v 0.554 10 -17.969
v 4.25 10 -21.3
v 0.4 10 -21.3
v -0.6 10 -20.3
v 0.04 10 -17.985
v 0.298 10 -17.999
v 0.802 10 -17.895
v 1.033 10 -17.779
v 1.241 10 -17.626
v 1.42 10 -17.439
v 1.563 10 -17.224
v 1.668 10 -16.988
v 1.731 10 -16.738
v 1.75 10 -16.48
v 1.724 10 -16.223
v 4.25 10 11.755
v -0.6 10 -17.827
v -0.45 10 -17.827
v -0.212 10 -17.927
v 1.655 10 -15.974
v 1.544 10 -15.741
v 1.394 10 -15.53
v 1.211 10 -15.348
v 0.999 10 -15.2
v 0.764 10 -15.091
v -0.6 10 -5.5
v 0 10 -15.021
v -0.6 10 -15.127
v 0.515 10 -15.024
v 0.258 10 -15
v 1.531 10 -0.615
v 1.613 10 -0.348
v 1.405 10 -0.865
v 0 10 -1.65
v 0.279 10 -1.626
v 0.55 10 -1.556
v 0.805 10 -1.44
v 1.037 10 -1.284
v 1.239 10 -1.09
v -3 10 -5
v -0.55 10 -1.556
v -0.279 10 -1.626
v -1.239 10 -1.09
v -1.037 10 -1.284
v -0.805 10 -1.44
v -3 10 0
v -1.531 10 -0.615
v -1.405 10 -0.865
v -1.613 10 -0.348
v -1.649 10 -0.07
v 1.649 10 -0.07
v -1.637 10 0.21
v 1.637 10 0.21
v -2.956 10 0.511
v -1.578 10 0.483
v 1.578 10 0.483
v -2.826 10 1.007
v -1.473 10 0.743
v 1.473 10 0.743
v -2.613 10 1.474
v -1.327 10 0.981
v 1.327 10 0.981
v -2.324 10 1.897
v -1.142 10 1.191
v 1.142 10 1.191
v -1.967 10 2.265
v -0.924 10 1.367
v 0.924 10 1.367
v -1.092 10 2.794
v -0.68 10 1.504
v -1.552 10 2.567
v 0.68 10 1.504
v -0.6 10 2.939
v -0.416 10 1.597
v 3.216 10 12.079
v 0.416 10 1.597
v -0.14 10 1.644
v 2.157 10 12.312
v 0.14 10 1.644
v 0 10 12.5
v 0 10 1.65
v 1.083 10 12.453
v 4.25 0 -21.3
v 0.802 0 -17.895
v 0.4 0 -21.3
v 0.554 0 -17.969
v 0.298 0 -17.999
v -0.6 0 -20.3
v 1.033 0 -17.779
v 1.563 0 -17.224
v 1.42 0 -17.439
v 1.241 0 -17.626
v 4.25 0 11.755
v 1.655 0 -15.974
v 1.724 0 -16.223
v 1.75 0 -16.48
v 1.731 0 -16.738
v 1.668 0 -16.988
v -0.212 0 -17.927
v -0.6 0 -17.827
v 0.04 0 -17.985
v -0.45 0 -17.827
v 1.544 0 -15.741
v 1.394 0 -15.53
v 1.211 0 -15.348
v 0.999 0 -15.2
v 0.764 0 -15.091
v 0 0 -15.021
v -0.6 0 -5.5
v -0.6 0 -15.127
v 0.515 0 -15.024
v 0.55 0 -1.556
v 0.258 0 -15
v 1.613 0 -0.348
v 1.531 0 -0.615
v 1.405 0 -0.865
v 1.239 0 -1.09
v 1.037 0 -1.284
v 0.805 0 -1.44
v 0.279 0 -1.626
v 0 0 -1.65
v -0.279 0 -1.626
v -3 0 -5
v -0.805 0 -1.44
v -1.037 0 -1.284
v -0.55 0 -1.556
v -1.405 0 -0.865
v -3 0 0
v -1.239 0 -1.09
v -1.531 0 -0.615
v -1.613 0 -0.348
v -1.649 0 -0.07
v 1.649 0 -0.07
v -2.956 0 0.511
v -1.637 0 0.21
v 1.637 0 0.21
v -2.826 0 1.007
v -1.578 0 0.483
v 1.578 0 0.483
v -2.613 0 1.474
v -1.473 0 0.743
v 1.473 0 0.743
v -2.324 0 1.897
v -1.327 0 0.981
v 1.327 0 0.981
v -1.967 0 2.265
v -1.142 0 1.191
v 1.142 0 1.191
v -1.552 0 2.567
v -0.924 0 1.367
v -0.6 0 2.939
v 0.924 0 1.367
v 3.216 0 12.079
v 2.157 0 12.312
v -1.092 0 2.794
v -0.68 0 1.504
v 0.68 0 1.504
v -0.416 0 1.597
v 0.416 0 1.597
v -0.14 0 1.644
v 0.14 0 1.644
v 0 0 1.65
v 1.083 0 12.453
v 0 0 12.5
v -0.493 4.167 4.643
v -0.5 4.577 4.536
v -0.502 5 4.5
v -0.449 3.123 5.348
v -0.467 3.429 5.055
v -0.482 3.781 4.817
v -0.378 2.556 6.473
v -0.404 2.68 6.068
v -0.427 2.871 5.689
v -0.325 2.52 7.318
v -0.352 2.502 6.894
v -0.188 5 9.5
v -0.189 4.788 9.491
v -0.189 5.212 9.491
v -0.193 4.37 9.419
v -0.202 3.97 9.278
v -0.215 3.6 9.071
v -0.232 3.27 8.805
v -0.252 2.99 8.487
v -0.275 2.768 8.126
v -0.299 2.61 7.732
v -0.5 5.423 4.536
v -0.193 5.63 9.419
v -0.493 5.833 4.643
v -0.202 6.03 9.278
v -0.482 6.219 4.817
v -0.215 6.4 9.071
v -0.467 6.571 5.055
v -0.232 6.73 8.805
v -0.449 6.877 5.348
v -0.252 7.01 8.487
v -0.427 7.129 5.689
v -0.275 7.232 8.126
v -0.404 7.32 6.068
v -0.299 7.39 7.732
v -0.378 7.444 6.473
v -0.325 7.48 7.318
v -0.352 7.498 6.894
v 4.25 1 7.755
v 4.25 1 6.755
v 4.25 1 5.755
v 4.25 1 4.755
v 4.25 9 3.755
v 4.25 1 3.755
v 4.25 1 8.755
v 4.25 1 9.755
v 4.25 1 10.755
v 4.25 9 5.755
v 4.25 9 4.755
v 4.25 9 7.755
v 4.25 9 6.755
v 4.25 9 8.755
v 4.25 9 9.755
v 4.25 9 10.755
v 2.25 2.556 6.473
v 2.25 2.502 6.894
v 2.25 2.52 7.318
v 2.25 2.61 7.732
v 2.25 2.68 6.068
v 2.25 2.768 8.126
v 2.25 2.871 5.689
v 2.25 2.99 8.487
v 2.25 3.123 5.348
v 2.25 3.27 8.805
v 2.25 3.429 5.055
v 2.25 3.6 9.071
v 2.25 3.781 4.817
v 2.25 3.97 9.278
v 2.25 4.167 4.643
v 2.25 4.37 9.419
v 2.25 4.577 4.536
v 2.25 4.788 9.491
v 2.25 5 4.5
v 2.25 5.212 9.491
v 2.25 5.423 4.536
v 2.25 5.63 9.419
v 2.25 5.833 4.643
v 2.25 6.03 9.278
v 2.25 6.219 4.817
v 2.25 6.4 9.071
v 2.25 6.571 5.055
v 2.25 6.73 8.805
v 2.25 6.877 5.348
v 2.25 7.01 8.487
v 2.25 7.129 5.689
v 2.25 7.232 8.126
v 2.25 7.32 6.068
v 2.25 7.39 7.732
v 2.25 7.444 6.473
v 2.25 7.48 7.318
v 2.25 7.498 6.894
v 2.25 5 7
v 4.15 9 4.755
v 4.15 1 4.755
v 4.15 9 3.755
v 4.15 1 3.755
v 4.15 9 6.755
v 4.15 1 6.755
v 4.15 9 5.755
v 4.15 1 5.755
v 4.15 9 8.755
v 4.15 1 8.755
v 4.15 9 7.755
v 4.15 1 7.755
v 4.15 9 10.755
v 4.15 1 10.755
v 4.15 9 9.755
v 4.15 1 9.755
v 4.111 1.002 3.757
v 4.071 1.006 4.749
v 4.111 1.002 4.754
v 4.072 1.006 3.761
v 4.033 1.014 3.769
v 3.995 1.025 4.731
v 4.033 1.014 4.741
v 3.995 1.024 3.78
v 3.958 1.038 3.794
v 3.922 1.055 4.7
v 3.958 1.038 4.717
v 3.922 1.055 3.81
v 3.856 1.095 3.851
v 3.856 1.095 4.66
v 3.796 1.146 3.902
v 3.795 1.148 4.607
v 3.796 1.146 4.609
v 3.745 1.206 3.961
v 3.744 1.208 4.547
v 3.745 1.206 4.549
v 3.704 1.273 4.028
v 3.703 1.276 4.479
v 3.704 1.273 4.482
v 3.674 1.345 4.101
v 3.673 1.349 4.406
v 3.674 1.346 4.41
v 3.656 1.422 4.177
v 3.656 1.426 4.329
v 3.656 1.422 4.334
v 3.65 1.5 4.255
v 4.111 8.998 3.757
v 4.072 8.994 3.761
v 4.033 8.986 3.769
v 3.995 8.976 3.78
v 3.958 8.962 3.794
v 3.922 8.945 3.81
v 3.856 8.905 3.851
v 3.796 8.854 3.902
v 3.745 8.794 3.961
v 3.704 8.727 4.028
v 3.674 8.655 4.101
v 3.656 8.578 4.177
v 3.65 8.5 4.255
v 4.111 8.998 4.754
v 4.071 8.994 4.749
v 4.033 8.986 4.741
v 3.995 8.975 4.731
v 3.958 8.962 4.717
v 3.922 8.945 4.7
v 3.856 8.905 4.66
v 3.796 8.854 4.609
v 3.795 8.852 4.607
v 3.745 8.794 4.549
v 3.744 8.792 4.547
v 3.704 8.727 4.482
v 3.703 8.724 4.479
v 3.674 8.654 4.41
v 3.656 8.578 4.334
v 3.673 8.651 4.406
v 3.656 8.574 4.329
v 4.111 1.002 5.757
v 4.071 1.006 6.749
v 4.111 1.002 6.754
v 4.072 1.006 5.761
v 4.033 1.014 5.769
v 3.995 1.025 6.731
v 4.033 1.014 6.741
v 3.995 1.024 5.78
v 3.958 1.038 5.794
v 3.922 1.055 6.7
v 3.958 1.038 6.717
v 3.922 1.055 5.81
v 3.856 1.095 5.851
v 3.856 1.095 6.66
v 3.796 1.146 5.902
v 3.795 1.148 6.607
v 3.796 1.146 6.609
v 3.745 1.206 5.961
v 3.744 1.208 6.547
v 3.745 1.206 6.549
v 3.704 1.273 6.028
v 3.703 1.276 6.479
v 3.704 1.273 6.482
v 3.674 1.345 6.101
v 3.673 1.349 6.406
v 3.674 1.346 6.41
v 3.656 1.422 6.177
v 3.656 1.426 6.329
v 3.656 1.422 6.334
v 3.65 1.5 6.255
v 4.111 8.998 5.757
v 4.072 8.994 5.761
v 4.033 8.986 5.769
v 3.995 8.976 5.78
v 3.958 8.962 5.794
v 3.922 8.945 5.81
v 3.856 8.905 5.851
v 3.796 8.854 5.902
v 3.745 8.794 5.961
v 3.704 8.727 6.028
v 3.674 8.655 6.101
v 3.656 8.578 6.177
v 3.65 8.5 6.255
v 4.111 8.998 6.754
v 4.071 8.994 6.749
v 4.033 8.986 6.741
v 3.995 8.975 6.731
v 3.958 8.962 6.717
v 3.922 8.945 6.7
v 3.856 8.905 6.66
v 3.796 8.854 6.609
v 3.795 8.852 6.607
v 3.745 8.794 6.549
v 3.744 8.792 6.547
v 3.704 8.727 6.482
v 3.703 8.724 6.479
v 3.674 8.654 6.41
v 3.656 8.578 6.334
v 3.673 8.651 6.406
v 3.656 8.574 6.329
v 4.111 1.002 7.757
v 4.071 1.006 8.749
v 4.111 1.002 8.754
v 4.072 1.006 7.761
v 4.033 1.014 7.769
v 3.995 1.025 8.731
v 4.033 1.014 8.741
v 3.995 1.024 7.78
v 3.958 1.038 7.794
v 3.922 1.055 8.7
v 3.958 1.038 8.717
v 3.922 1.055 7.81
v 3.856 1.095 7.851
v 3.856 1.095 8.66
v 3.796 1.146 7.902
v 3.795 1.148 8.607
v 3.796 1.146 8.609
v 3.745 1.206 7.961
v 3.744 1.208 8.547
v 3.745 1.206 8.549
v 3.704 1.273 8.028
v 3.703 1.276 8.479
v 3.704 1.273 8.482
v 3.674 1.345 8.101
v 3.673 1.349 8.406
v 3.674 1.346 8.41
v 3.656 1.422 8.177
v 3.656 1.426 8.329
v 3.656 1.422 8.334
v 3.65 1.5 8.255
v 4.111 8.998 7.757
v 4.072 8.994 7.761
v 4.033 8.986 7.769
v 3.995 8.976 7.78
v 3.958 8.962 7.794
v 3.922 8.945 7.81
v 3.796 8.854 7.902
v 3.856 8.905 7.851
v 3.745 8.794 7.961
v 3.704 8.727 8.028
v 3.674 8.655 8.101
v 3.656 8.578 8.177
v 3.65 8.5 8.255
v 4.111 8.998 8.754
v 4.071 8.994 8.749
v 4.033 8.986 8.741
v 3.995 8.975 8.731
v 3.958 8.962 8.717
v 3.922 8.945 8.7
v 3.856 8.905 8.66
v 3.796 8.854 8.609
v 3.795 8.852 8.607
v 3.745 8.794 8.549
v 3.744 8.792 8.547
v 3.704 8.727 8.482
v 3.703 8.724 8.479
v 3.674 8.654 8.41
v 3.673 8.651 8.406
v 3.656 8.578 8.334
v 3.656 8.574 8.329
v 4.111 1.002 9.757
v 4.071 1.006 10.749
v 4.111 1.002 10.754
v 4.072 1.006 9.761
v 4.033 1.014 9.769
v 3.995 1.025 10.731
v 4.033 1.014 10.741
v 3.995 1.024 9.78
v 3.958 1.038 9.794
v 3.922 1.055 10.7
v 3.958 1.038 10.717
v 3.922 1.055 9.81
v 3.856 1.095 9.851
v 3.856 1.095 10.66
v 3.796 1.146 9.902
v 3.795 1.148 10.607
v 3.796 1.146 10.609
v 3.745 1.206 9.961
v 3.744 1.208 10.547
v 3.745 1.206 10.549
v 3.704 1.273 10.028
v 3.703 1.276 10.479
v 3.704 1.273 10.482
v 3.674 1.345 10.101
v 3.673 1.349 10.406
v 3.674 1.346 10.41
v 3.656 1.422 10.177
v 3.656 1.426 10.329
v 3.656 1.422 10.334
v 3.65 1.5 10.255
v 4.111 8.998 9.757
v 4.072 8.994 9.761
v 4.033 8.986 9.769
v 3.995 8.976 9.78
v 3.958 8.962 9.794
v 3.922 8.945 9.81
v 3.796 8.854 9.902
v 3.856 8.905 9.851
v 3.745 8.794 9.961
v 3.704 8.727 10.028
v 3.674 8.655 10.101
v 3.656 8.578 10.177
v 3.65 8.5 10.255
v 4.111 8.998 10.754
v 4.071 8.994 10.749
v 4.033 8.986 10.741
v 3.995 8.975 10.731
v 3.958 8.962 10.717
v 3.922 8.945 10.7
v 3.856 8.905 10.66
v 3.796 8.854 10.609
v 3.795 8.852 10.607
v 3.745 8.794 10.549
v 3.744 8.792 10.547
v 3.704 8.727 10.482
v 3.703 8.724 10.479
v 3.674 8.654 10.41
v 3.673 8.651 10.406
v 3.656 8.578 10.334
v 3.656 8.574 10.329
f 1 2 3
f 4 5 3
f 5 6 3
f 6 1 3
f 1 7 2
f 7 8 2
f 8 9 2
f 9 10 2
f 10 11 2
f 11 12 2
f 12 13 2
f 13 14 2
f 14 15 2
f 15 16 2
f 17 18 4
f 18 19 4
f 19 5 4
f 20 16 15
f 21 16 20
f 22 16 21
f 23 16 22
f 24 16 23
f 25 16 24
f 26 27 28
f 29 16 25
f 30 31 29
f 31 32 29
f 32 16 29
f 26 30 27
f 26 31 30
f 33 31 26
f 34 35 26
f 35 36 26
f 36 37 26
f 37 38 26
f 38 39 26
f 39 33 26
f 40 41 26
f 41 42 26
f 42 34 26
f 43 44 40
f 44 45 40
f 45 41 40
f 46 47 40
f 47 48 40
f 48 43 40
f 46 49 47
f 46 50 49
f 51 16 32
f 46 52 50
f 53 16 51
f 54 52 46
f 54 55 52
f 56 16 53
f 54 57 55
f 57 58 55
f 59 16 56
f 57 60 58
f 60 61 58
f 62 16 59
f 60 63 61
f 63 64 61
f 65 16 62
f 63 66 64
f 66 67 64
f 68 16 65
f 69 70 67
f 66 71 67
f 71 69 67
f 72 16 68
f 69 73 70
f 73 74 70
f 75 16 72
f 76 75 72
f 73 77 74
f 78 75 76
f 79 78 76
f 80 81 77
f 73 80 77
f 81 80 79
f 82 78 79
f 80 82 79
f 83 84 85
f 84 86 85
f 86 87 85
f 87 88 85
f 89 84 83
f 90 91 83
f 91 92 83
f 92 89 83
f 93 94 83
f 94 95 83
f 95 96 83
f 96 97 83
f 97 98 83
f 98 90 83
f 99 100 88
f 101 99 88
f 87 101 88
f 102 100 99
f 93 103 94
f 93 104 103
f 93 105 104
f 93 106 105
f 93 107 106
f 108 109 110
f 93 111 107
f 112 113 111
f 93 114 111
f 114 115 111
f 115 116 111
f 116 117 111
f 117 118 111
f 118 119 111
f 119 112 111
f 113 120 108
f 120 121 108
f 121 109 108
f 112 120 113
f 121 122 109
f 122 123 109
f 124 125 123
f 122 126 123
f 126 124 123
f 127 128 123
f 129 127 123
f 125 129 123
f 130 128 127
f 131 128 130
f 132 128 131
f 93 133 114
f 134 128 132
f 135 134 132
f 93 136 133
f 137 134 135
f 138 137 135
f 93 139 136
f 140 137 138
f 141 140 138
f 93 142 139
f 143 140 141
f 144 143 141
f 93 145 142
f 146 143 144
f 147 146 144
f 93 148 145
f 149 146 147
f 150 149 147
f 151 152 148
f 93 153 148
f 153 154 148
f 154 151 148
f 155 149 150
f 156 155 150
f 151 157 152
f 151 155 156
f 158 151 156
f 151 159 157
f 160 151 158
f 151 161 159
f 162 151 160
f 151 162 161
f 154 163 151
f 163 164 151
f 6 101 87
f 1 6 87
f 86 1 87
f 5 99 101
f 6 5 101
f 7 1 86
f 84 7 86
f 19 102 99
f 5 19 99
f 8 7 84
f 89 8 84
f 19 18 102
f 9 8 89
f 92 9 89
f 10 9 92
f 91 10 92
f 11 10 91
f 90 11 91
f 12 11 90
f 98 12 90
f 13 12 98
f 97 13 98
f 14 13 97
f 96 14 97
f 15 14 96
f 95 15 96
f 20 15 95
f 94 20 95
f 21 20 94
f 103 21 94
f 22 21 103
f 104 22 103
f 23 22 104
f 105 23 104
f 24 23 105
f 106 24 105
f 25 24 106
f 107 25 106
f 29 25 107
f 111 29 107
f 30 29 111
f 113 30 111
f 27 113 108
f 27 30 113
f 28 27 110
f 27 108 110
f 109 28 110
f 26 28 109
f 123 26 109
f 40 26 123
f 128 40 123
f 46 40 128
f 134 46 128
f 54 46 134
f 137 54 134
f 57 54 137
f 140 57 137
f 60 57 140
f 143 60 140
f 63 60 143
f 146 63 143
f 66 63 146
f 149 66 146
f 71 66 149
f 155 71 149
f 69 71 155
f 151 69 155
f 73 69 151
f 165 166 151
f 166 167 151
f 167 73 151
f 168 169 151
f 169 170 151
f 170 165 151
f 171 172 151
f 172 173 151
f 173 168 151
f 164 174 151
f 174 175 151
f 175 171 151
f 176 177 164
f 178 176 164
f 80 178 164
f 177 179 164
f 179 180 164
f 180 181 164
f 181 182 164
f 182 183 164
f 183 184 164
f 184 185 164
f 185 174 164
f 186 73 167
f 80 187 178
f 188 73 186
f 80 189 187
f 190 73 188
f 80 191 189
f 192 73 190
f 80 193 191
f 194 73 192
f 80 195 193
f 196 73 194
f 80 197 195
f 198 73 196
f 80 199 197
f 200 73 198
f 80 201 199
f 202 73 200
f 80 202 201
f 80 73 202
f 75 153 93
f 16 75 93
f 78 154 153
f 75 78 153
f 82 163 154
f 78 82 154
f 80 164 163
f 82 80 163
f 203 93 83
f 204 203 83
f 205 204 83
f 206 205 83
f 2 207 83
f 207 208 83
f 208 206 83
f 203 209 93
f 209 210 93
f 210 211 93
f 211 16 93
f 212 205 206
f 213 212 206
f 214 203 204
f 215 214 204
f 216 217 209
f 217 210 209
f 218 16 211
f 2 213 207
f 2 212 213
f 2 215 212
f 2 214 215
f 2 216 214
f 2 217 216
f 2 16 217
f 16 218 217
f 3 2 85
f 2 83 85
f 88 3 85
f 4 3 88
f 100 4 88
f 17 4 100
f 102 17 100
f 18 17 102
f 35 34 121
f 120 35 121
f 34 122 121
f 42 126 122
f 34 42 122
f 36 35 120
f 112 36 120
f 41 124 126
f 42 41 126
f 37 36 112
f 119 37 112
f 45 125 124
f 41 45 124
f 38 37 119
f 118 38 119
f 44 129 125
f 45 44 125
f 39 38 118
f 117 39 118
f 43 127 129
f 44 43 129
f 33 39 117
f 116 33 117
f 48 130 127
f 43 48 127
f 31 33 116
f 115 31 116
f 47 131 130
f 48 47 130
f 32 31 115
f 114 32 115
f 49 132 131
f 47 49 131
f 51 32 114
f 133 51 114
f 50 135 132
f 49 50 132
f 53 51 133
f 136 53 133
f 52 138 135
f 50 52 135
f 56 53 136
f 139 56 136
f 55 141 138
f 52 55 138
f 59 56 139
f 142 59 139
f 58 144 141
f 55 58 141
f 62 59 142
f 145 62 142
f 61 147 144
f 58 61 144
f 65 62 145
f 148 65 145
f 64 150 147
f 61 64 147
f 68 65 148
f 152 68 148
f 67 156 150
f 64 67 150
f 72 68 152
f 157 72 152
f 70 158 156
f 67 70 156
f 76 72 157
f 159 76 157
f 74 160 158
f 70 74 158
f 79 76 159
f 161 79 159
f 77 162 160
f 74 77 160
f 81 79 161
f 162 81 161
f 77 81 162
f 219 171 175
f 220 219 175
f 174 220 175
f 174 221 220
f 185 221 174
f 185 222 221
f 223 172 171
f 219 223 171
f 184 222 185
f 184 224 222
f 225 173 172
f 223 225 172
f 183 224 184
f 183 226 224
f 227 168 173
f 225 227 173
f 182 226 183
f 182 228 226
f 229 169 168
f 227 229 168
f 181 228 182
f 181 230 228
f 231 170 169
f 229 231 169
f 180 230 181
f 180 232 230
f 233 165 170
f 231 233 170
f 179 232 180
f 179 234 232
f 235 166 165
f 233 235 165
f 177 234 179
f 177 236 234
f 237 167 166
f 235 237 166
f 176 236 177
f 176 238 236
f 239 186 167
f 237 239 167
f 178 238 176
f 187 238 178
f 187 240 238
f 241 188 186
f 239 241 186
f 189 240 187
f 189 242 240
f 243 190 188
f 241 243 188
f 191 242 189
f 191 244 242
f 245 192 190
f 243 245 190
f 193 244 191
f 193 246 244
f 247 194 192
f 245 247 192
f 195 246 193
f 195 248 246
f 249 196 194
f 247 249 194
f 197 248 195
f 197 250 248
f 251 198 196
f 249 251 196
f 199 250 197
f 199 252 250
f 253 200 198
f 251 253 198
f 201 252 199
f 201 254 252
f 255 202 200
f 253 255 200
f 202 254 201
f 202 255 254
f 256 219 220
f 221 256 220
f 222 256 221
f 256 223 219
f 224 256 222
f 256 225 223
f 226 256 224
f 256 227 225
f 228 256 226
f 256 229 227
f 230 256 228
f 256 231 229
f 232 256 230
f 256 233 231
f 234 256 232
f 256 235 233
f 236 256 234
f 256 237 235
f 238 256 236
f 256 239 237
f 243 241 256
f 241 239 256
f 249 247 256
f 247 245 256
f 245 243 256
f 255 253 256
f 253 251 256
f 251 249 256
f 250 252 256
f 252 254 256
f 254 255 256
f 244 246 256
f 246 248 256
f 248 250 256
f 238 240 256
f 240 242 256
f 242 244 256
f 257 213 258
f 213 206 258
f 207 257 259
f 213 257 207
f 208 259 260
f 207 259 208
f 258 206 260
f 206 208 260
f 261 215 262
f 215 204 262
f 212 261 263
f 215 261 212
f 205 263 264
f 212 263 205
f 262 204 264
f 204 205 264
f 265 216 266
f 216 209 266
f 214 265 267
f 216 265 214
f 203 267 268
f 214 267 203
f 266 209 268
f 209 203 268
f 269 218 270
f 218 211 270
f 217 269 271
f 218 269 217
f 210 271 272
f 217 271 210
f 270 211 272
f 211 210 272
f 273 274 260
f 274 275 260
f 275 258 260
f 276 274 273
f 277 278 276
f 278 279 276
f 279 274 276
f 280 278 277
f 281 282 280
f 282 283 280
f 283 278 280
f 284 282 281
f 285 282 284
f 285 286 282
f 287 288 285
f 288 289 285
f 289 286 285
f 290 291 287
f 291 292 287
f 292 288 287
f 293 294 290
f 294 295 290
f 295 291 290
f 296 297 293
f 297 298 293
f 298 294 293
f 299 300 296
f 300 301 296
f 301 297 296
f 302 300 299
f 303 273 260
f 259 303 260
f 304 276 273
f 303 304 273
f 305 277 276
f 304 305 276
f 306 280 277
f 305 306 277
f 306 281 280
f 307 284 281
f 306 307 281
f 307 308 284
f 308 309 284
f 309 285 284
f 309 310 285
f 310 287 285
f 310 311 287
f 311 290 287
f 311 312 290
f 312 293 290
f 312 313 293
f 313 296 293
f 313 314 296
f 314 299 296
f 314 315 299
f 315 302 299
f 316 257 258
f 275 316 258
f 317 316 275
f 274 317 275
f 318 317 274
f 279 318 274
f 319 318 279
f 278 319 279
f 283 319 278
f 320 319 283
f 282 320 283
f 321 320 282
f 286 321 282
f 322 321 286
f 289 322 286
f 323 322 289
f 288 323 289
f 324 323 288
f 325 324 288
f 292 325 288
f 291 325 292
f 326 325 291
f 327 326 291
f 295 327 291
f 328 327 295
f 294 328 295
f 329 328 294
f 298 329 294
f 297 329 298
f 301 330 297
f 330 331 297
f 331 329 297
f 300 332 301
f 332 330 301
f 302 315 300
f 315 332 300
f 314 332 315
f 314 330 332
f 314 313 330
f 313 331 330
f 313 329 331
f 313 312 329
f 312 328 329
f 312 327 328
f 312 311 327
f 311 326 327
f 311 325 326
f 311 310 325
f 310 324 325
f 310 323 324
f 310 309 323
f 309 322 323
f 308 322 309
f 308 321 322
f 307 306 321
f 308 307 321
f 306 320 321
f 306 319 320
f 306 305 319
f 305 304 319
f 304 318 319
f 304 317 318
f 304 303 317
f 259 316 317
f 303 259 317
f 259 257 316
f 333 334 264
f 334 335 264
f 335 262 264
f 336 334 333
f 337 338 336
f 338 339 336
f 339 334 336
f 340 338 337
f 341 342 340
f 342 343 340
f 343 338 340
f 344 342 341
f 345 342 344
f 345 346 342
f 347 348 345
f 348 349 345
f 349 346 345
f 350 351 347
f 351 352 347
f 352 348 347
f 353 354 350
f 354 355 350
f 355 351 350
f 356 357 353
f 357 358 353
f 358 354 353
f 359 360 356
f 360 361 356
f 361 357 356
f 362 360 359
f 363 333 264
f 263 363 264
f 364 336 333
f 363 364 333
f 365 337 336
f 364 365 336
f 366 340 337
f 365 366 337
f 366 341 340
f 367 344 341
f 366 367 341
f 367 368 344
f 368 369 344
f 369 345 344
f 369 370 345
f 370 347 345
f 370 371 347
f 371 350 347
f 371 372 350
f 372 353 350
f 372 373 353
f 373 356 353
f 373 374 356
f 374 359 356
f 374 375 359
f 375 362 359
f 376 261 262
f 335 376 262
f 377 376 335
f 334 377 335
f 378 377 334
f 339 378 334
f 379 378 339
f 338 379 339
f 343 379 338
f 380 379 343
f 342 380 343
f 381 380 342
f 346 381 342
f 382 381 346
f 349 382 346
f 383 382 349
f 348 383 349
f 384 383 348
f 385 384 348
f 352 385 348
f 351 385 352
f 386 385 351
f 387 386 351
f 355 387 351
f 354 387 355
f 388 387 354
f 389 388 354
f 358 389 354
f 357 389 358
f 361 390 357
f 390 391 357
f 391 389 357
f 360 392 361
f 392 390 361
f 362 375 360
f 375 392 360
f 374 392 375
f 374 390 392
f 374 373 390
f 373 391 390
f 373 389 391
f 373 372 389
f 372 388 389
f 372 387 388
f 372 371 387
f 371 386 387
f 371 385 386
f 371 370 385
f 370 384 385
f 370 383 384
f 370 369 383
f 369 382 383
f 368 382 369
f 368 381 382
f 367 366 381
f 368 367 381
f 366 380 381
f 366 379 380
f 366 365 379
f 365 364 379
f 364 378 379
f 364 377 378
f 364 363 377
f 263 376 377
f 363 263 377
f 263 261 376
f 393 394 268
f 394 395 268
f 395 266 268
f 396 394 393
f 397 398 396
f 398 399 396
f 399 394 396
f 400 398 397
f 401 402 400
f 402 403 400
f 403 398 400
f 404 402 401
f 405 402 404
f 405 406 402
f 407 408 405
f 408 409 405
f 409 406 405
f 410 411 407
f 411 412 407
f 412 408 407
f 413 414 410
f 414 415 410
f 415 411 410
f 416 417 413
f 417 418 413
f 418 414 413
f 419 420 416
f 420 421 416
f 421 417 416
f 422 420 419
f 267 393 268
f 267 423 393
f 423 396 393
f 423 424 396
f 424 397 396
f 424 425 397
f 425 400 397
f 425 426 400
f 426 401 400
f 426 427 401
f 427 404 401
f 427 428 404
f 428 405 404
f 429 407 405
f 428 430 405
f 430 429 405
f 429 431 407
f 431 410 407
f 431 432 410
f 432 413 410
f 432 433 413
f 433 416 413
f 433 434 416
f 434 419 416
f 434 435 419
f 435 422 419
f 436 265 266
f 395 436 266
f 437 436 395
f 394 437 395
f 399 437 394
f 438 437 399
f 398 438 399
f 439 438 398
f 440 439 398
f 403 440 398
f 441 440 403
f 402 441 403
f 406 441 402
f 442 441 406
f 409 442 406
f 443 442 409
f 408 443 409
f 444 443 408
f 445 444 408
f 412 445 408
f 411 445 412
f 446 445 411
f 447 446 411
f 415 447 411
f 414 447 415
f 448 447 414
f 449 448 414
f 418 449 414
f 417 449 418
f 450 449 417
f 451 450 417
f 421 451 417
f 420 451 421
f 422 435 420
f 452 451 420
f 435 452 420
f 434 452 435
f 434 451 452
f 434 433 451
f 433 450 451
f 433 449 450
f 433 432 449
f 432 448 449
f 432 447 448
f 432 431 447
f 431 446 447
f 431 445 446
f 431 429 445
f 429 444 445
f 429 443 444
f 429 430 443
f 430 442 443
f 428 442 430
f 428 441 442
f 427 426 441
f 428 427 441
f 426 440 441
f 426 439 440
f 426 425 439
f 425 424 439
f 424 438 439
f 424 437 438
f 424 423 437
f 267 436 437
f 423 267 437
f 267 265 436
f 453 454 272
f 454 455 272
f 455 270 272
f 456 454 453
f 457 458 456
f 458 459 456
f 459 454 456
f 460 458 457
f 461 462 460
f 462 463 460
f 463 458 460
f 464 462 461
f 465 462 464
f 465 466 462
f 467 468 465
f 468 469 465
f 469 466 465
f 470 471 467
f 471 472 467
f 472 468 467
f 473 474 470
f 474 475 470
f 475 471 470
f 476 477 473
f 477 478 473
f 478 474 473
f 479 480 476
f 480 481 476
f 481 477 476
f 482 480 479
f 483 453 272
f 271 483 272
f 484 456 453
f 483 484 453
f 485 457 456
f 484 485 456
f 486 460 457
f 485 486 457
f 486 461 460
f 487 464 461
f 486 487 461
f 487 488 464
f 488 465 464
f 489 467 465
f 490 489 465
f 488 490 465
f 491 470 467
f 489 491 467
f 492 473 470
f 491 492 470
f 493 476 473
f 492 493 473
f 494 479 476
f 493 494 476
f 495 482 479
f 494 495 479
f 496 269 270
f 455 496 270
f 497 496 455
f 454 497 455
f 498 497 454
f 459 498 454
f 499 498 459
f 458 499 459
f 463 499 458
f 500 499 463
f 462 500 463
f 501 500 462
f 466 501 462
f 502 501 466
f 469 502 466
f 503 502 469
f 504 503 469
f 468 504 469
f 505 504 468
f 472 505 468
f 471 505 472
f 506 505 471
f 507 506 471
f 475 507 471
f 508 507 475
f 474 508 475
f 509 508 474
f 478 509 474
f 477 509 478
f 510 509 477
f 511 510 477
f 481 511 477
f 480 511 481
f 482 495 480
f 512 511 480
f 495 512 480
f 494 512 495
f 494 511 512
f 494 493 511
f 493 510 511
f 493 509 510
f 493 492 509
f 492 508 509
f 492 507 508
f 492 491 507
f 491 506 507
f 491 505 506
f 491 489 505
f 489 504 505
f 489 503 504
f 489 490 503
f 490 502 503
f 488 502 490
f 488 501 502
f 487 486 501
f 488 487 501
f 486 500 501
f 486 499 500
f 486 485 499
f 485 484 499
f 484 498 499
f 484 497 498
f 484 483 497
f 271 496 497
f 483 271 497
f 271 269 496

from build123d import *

# Parameters (mm, degrees)
SKETCH1_R           = 1.65
BOSS_EXTRUDE1_DEPTH = 10
CUT_EXTRUDE1_START  = -2
SKETCH2_R           = 2.5
CUT_EXTRUDE1_DEPTH  = 10
SKETCH3_W           = 1
SKETCH3_H           = 8
CUT_EXTRUDE2_DEPTH  = 0.6
FILLET1_R           = 0.5


with BuildPart() as part:
    # Sketch1 → Boss-Extrude1 (new body)
    with BuildSketch(Plane(origin=(0, 0, 0), x_dir=(1, 0, 0), z_dir=(0, 1, 0))):
        with BuildLine():
            Line((4.25, 21.3), (4.25, -11.755317946))
            ThreePointArc((4.25, -11.755317946), (2.157374061, -12.312422067), (0, -12.5))
            Line((0, -12.5), (-0.6, -2.939387691))
            ThreePointArc((-0.6, -2.939387691), (-2.323790008, -1.897366596), (-3, 0))
            Line((-3, 0), (-3, 5))
            Line((-3, 5), (-0.6, 5.5))
            Line((-0.6, 5.5), (-0.6, 15.126776243))
            Line((-0.6, 15.126776243), (0, 15.020980054))
            ThreePointArc((0, 15.020980054), (1.731070844, 16.737548219), (-0.45, 17.826649916))
            Line((-0.45, 17.826649916), (-0.6, 17.826649916))
            Line((-0.6, 17.826649916), (-0.6, 20.3))
            Line((-0.6, 20.3), (0.4, 21.3))
            Line((0.4, 21.3), (4.25, 21.3))
        make_face()
        with Locations(Location((0, 0, 0), (0, 0, 270))):
            Circle(SKETCH1_R, mode=Mode.SUBTRACT)
    extrude(amount=BOSS_EXTRUDE1_DEPTH)

    # Sketch2 → Cut-Extrude1 (cut)
    with BuildSketch(Plane(origin=(4.25, 0, 0), x_dir=(0, 0, -1), z_dir=(1, 0, 0)).offset(CUT_EXTRUDE1_START)):
        with Locations((-7, 5)):
            Circle(SKETCH2_R)
    extrude(amount=-CUT_EXTRUDE1_DEPTH, mode=Mode.SUBTRACT)

    # Sketch3 → Cut-Extrude2 (cut)
    with BuildSketch(Plane(origin=(4.25, 0, 0), x_dir=(0, 0, -1), z_dir=(1, 0, 0))):
        with Locations((-10.255317946, 5)):
            Rectangle(SKETCH3_W, SKETCH3_H)
        with Locations((-8.255317946, 5)):
            Rectangle(SKETCH3_W, SKETCH3_H)
        with Locations((-6.255317946, 5)):
            Rectangle(SKETCH3_W, SKETCH3_H)
        with Locations((-4.255317946, 5)):
            Rectangle(SKETCH3_W, SKETCH3_H)
    extrude(amount=-CUT_EXTRUDE2_DEPTH, mode=Mode.SUBTRACT)

    # Fillet1
    fillet1_edges = [part.edges().sort_by_distance(p)[0] for p in [
        (3.65, 5, 10.755317946),
        (3.65, 9, 10.255317946),
        (3.65, 5, 9.755317946),
        (3.65, 1, 10.255317946),
        (3.65, 5, 8.755317946),
        (3.65, 9, 8.255317946),
        (3.65, 5, 7.755317946),
        (3.65, 1, 8.255317946),
        (3.65, 5, 6.755317946),
        (3.65, 9, 6.255317946),
        (3.65, 5, 5.755317946),
        (3.65, 1, 6.255317946),
        (3.65, 5, 4.755317946),
        (3.65, 9, 4.255317946),
        (3.65, 5, 3.755317946),
        (3.65, 1, 4.255317946),
    ]]
    fillet(fillet1_edges, radius=FILLET1_R - 0.0001)  # a hair under: the kernel refuses the full size


solid = part.part
